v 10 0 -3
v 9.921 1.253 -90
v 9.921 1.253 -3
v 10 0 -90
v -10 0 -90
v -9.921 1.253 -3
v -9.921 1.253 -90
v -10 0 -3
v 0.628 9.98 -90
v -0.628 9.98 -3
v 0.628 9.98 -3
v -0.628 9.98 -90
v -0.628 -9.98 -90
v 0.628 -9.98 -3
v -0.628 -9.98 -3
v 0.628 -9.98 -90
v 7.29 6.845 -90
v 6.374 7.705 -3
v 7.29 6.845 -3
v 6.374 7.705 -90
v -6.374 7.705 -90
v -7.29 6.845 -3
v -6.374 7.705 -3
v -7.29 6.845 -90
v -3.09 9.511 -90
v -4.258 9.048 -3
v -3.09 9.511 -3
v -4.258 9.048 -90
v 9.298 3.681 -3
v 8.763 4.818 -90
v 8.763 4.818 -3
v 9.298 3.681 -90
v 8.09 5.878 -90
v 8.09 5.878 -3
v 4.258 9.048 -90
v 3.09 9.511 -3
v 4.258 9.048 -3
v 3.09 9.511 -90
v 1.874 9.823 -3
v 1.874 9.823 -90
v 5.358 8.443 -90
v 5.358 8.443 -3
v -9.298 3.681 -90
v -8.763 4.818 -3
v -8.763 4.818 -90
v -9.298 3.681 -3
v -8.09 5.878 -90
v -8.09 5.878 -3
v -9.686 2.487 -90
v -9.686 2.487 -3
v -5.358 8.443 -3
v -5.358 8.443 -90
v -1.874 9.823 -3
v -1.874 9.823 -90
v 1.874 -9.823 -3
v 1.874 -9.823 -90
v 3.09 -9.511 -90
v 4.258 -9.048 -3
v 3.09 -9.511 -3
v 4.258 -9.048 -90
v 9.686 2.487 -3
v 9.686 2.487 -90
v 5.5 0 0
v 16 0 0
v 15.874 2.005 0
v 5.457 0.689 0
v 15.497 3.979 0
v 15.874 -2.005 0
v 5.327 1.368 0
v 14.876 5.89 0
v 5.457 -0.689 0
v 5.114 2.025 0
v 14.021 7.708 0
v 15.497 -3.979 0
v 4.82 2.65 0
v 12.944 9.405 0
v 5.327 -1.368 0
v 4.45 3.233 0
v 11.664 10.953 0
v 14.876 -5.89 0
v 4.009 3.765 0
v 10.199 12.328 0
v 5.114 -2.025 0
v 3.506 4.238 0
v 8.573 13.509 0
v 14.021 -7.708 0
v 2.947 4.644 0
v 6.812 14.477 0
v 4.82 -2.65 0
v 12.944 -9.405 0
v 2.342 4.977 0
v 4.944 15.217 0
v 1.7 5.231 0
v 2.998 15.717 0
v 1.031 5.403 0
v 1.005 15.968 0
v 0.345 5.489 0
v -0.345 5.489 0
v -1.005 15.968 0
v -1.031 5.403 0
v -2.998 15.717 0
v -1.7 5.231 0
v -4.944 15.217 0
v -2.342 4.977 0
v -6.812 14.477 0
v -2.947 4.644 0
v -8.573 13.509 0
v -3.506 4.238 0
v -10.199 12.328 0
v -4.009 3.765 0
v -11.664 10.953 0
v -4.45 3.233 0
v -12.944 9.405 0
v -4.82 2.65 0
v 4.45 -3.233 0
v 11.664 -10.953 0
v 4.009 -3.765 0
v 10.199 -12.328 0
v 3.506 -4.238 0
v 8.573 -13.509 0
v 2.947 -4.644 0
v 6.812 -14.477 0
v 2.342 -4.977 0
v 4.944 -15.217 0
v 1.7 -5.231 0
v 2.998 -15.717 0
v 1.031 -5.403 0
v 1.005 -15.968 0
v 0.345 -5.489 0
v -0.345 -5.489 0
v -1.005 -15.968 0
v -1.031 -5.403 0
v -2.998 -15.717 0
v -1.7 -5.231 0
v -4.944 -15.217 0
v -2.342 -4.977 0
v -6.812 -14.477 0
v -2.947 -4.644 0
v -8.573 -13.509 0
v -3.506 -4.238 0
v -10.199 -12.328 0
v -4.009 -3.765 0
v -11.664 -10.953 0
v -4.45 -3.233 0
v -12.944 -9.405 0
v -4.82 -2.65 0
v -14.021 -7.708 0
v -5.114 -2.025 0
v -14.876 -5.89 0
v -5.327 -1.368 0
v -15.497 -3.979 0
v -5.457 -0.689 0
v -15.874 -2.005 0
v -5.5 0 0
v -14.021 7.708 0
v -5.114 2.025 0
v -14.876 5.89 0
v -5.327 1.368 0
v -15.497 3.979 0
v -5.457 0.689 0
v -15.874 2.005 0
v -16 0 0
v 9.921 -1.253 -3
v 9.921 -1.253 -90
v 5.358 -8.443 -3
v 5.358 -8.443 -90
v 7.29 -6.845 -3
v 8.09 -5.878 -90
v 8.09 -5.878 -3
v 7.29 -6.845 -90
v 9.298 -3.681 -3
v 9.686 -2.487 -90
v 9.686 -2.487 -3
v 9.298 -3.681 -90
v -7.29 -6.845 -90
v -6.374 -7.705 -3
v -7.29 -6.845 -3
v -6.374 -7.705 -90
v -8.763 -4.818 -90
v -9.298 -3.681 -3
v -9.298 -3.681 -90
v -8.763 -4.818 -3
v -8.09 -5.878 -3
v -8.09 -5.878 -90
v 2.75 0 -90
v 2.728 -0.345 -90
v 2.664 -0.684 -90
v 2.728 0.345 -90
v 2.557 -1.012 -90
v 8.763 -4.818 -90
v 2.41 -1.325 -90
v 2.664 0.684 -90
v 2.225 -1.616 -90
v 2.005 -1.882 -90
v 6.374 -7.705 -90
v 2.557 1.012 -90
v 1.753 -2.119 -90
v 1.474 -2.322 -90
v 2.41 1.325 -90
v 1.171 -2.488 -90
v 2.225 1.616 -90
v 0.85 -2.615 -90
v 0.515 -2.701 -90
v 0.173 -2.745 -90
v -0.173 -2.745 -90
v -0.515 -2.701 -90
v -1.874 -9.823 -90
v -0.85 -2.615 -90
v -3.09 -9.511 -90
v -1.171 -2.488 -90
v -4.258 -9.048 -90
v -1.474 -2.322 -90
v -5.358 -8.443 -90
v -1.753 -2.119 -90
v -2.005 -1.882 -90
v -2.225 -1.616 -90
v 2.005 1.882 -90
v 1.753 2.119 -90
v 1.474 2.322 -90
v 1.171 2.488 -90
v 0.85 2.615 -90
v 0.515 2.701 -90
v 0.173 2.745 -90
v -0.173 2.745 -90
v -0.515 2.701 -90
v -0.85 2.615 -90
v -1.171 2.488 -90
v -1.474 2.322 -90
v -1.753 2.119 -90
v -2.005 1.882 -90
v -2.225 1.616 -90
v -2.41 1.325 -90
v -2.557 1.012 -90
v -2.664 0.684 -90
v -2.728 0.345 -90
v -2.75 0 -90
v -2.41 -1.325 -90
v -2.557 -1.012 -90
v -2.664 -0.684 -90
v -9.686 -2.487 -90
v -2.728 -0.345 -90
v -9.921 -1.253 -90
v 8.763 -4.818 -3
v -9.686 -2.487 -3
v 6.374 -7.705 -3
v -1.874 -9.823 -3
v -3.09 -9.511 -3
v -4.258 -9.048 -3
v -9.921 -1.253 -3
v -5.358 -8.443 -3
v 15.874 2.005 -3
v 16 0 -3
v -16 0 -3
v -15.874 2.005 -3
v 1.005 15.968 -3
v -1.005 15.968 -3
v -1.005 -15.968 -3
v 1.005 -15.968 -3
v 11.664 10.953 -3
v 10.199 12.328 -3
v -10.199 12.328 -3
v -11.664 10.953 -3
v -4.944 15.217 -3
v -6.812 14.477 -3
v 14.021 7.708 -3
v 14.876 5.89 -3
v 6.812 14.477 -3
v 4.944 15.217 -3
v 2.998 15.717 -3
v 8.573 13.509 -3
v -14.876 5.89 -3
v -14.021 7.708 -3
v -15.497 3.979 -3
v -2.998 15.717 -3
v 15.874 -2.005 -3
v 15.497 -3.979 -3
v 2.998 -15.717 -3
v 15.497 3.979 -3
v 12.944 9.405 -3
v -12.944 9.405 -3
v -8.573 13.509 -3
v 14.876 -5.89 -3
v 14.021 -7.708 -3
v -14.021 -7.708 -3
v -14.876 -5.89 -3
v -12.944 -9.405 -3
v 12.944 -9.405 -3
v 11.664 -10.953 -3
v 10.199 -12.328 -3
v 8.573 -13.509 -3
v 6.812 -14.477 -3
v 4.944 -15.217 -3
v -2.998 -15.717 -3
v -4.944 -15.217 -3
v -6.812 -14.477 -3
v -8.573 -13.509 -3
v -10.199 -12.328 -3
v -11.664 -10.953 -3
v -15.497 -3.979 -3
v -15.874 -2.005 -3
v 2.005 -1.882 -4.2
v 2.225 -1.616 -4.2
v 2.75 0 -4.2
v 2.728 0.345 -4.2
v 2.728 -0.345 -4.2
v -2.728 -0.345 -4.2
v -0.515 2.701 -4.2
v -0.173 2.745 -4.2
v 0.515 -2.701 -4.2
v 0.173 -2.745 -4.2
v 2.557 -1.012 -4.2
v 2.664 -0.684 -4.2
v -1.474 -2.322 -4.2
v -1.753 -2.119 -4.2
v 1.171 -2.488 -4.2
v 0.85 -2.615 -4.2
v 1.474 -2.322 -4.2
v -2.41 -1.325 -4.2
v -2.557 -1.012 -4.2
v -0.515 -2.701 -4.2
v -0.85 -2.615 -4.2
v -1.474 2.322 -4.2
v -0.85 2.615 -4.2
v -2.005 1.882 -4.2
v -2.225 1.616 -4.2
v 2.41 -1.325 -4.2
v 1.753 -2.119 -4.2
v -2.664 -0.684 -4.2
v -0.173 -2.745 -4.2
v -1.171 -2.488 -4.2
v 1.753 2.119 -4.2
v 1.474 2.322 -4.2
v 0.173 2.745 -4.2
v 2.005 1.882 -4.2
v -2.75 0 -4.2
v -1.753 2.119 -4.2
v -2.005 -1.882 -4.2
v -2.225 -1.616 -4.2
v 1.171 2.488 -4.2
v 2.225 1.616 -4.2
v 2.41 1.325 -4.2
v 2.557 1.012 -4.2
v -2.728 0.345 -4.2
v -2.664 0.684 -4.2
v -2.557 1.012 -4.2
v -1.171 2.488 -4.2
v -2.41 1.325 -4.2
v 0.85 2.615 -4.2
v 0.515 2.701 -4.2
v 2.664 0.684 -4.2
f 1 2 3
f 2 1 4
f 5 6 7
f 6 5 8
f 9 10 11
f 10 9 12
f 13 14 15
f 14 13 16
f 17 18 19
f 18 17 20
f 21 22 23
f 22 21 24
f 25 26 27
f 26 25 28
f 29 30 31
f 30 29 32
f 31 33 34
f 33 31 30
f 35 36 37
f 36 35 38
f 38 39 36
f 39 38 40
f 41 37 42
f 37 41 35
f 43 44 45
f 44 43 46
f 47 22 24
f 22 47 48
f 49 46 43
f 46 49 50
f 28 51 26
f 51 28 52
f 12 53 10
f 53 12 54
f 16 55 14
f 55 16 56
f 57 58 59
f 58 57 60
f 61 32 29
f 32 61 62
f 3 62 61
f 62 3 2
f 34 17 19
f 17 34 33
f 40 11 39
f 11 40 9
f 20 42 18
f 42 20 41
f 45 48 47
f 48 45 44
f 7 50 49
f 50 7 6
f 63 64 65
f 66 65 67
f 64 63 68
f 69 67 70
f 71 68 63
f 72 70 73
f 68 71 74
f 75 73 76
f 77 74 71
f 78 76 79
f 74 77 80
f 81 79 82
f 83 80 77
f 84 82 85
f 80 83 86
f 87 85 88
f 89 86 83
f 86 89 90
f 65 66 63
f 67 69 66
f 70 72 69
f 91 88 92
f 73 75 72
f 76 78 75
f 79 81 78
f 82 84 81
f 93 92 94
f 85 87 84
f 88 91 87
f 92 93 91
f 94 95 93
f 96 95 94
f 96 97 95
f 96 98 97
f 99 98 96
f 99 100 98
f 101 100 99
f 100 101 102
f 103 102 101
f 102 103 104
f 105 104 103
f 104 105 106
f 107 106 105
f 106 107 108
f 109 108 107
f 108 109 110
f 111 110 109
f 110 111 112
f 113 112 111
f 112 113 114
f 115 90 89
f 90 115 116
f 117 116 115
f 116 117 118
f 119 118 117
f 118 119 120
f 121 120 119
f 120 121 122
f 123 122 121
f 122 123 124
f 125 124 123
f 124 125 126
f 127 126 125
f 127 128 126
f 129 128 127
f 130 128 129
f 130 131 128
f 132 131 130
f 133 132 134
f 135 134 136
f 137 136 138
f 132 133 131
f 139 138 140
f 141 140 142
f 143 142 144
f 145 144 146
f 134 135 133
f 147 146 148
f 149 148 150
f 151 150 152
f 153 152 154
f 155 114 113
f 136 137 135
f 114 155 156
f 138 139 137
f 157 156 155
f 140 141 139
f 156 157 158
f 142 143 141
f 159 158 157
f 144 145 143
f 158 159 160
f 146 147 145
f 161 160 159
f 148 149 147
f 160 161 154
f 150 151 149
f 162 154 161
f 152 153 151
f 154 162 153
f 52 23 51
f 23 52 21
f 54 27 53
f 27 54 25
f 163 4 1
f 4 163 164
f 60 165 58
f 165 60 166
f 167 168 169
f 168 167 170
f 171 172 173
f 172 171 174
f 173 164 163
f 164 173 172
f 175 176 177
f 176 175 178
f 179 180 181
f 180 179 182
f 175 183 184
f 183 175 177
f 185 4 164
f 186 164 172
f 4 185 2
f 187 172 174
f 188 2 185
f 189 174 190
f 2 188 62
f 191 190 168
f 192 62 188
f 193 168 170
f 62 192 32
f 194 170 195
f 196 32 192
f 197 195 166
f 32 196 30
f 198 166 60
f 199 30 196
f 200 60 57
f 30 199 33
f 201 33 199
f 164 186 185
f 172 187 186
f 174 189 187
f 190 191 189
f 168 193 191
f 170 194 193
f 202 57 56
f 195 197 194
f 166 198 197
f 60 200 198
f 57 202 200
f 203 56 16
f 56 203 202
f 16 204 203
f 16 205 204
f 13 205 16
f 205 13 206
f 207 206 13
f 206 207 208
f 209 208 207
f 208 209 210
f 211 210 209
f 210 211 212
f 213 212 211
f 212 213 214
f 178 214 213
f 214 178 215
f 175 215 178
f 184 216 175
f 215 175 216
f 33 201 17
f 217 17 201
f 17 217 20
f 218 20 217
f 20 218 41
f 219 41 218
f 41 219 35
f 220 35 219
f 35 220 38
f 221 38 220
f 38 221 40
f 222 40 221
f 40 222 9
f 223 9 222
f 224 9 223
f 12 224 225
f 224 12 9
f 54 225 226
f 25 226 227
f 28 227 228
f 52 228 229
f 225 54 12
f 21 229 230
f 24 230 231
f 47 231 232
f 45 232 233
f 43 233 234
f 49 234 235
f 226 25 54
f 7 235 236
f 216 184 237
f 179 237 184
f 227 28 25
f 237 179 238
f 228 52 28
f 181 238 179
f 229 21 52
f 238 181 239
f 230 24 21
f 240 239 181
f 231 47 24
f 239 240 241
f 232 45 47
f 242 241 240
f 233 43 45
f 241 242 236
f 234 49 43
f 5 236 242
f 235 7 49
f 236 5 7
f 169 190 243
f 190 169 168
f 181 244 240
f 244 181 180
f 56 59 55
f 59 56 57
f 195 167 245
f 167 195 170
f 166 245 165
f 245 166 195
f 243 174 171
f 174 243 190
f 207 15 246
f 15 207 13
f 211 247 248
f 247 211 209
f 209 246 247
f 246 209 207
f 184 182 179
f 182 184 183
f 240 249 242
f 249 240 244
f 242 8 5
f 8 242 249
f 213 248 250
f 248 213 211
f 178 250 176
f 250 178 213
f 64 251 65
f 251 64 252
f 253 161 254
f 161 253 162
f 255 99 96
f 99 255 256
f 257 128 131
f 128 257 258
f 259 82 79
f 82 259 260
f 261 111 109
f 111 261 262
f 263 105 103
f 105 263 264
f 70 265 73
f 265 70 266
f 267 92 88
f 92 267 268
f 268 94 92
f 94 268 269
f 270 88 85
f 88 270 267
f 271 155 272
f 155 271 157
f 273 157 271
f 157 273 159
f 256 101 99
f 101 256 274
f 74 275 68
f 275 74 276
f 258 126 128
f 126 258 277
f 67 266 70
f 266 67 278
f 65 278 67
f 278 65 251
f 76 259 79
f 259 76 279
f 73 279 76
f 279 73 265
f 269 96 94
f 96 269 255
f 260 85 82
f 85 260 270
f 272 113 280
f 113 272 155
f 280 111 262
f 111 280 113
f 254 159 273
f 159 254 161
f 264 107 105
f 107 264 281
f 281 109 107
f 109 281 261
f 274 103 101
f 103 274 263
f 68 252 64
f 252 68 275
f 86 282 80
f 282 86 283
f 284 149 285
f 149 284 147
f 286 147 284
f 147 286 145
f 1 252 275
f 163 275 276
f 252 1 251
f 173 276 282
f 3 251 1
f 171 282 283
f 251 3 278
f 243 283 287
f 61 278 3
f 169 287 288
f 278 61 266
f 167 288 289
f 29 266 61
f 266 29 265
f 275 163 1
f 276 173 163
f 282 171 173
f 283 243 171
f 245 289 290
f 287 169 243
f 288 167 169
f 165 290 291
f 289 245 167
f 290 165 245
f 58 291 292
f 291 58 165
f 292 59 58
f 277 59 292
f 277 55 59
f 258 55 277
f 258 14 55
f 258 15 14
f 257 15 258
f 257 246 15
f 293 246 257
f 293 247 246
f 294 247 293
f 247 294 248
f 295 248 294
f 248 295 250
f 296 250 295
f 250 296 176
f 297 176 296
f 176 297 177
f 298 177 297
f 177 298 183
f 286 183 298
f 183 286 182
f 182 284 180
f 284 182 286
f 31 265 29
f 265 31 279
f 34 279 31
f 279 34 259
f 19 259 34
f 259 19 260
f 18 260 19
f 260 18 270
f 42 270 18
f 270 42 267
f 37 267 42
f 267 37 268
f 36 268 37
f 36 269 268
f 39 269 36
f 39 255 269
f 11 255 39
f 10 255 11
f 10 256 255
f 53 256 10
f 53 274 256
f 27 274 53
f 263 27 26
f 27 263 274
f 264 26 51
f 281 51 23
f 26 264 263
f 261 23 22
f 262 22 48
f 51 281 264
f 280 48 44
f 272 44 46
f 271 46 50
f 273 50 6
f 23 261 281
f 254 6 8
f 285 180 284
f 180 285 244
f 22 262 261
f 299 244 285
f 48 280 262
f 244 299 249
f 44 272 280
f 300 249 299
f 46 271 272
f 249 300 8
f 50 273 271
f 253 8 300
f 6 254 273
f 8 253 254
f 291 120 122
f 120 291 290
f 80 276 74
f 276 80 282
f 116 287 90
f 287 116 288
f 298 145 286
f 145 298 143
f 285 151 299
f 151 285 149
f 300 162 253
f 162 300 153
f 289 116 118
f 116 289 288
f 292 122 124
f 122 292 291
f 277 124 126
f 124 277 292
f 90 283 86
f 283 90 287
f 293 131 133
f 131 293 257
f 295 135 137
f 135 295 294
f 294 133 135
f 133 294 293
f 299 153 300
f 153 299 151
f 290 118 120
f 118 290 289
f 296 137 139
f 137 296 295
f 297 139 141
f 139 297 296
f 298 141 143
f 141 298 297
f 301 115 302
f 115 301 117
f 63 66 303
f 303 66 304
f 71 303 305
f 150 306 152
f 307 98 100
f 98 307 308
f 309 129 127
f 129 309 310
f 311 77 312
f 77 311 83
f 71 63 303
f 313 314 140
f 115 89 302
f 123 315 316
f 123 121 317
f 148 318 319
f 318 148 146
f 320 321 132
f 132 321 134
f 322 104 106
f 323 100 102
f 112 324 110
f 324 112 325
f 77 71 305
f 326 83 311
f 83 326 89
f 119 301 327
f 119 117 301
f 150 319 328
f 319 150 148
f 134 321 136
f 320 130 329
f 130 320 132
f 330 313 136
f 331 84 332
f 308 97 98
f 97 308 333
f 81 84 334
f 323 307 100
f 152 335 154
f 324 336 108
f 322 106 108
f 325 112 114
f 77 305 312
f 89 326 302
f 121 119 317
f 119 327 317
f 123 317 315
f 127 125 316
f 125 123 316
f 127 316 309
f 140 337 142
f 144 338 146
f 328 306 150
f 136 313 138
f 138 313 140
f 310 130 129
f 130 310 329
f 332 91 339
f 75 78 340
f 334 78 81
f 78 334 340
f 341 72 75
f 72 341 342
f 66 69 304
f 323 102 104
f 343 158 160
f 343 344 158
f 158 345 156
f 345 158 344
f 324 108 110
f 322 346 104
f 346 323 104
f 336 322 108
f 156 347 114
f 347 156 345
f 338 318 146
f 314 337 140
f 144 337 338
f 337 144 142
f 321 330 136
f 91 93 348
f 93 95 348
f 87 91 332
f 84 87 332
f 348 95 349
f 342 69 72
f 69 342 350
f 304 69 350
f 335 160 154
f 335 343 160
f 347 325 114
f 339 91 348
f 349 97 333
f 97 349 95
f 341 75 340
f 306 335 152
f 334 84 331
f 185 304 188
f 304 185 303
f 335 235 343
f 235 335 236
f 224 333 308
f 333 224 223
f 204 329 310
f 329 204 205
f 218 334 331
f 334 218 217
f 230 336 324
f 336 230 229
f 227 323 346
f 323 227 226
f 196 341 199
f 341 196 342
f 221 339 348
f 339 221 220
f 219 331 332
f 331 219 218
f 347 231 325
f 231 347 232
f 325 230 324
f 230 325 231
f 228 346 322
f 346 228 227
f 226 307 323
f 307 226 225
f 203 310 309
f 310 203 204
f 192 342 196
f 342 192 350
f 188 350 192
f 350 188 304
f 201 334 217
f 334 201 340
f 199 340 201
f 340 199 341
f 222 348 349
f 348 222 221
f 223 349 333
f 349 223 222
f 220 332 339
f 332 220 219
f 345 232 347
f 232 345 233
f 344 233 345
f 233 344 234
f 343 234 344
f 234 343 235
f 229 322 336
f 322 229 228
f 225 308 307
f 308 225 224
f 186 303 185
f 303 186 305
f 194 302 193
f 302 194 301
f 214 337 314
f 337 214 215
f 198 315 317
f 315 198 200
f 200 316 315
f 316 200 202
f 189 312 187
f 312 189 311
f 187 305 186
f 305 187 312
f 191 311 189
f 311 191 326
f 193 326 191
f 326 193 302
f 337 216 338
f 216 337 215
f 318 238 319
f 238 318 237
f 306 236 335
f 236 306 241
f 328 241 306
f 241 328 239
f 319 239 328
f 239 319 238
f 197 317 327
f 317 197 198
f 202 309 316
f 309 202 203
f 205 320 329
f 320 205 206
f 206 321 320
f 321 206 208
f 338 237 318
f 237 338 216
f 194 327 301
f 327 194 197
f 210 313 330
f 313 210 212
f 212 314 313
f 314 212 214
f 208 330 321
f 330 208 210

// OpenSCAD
$fn = 50;


difference() {
	union() {
		translate(v = [0, 0, -90.0000000000]) {
			cylinder(h = 90, r = 10.0000000000);
		}
		translate(v = [0, 0, -3.0000000000]) {
			cylinder(h = 3, r = 16.0000000000);
		}
	}
	union() {
		translate(v = [0, 0, 0]) {
			rotate(a = [0, 0, 0]) {
				difference() {
					union() {
						#translate(v = [0, 0, -90.0000000000]) {
							cylinder(h = 90, r = 2.2500000000);
						}
						#translate(v = [0, 0, -4.2000000000]) {
							cylinder(h = 4.2000000000, r1 = 2.7500000000, r2 = 5.5000000000);
						}
						#translate(v = [0, 0, -90.0000000000]) {
							cylinder(h = 90, r = 2.7500000000);
						}
						#translate(v = [0, 0, -90.0000000000]) {
							cylinder(h = 90, r = 2.2500000000);
						}
					}
					union();
				}
			}
		}
	}
}
